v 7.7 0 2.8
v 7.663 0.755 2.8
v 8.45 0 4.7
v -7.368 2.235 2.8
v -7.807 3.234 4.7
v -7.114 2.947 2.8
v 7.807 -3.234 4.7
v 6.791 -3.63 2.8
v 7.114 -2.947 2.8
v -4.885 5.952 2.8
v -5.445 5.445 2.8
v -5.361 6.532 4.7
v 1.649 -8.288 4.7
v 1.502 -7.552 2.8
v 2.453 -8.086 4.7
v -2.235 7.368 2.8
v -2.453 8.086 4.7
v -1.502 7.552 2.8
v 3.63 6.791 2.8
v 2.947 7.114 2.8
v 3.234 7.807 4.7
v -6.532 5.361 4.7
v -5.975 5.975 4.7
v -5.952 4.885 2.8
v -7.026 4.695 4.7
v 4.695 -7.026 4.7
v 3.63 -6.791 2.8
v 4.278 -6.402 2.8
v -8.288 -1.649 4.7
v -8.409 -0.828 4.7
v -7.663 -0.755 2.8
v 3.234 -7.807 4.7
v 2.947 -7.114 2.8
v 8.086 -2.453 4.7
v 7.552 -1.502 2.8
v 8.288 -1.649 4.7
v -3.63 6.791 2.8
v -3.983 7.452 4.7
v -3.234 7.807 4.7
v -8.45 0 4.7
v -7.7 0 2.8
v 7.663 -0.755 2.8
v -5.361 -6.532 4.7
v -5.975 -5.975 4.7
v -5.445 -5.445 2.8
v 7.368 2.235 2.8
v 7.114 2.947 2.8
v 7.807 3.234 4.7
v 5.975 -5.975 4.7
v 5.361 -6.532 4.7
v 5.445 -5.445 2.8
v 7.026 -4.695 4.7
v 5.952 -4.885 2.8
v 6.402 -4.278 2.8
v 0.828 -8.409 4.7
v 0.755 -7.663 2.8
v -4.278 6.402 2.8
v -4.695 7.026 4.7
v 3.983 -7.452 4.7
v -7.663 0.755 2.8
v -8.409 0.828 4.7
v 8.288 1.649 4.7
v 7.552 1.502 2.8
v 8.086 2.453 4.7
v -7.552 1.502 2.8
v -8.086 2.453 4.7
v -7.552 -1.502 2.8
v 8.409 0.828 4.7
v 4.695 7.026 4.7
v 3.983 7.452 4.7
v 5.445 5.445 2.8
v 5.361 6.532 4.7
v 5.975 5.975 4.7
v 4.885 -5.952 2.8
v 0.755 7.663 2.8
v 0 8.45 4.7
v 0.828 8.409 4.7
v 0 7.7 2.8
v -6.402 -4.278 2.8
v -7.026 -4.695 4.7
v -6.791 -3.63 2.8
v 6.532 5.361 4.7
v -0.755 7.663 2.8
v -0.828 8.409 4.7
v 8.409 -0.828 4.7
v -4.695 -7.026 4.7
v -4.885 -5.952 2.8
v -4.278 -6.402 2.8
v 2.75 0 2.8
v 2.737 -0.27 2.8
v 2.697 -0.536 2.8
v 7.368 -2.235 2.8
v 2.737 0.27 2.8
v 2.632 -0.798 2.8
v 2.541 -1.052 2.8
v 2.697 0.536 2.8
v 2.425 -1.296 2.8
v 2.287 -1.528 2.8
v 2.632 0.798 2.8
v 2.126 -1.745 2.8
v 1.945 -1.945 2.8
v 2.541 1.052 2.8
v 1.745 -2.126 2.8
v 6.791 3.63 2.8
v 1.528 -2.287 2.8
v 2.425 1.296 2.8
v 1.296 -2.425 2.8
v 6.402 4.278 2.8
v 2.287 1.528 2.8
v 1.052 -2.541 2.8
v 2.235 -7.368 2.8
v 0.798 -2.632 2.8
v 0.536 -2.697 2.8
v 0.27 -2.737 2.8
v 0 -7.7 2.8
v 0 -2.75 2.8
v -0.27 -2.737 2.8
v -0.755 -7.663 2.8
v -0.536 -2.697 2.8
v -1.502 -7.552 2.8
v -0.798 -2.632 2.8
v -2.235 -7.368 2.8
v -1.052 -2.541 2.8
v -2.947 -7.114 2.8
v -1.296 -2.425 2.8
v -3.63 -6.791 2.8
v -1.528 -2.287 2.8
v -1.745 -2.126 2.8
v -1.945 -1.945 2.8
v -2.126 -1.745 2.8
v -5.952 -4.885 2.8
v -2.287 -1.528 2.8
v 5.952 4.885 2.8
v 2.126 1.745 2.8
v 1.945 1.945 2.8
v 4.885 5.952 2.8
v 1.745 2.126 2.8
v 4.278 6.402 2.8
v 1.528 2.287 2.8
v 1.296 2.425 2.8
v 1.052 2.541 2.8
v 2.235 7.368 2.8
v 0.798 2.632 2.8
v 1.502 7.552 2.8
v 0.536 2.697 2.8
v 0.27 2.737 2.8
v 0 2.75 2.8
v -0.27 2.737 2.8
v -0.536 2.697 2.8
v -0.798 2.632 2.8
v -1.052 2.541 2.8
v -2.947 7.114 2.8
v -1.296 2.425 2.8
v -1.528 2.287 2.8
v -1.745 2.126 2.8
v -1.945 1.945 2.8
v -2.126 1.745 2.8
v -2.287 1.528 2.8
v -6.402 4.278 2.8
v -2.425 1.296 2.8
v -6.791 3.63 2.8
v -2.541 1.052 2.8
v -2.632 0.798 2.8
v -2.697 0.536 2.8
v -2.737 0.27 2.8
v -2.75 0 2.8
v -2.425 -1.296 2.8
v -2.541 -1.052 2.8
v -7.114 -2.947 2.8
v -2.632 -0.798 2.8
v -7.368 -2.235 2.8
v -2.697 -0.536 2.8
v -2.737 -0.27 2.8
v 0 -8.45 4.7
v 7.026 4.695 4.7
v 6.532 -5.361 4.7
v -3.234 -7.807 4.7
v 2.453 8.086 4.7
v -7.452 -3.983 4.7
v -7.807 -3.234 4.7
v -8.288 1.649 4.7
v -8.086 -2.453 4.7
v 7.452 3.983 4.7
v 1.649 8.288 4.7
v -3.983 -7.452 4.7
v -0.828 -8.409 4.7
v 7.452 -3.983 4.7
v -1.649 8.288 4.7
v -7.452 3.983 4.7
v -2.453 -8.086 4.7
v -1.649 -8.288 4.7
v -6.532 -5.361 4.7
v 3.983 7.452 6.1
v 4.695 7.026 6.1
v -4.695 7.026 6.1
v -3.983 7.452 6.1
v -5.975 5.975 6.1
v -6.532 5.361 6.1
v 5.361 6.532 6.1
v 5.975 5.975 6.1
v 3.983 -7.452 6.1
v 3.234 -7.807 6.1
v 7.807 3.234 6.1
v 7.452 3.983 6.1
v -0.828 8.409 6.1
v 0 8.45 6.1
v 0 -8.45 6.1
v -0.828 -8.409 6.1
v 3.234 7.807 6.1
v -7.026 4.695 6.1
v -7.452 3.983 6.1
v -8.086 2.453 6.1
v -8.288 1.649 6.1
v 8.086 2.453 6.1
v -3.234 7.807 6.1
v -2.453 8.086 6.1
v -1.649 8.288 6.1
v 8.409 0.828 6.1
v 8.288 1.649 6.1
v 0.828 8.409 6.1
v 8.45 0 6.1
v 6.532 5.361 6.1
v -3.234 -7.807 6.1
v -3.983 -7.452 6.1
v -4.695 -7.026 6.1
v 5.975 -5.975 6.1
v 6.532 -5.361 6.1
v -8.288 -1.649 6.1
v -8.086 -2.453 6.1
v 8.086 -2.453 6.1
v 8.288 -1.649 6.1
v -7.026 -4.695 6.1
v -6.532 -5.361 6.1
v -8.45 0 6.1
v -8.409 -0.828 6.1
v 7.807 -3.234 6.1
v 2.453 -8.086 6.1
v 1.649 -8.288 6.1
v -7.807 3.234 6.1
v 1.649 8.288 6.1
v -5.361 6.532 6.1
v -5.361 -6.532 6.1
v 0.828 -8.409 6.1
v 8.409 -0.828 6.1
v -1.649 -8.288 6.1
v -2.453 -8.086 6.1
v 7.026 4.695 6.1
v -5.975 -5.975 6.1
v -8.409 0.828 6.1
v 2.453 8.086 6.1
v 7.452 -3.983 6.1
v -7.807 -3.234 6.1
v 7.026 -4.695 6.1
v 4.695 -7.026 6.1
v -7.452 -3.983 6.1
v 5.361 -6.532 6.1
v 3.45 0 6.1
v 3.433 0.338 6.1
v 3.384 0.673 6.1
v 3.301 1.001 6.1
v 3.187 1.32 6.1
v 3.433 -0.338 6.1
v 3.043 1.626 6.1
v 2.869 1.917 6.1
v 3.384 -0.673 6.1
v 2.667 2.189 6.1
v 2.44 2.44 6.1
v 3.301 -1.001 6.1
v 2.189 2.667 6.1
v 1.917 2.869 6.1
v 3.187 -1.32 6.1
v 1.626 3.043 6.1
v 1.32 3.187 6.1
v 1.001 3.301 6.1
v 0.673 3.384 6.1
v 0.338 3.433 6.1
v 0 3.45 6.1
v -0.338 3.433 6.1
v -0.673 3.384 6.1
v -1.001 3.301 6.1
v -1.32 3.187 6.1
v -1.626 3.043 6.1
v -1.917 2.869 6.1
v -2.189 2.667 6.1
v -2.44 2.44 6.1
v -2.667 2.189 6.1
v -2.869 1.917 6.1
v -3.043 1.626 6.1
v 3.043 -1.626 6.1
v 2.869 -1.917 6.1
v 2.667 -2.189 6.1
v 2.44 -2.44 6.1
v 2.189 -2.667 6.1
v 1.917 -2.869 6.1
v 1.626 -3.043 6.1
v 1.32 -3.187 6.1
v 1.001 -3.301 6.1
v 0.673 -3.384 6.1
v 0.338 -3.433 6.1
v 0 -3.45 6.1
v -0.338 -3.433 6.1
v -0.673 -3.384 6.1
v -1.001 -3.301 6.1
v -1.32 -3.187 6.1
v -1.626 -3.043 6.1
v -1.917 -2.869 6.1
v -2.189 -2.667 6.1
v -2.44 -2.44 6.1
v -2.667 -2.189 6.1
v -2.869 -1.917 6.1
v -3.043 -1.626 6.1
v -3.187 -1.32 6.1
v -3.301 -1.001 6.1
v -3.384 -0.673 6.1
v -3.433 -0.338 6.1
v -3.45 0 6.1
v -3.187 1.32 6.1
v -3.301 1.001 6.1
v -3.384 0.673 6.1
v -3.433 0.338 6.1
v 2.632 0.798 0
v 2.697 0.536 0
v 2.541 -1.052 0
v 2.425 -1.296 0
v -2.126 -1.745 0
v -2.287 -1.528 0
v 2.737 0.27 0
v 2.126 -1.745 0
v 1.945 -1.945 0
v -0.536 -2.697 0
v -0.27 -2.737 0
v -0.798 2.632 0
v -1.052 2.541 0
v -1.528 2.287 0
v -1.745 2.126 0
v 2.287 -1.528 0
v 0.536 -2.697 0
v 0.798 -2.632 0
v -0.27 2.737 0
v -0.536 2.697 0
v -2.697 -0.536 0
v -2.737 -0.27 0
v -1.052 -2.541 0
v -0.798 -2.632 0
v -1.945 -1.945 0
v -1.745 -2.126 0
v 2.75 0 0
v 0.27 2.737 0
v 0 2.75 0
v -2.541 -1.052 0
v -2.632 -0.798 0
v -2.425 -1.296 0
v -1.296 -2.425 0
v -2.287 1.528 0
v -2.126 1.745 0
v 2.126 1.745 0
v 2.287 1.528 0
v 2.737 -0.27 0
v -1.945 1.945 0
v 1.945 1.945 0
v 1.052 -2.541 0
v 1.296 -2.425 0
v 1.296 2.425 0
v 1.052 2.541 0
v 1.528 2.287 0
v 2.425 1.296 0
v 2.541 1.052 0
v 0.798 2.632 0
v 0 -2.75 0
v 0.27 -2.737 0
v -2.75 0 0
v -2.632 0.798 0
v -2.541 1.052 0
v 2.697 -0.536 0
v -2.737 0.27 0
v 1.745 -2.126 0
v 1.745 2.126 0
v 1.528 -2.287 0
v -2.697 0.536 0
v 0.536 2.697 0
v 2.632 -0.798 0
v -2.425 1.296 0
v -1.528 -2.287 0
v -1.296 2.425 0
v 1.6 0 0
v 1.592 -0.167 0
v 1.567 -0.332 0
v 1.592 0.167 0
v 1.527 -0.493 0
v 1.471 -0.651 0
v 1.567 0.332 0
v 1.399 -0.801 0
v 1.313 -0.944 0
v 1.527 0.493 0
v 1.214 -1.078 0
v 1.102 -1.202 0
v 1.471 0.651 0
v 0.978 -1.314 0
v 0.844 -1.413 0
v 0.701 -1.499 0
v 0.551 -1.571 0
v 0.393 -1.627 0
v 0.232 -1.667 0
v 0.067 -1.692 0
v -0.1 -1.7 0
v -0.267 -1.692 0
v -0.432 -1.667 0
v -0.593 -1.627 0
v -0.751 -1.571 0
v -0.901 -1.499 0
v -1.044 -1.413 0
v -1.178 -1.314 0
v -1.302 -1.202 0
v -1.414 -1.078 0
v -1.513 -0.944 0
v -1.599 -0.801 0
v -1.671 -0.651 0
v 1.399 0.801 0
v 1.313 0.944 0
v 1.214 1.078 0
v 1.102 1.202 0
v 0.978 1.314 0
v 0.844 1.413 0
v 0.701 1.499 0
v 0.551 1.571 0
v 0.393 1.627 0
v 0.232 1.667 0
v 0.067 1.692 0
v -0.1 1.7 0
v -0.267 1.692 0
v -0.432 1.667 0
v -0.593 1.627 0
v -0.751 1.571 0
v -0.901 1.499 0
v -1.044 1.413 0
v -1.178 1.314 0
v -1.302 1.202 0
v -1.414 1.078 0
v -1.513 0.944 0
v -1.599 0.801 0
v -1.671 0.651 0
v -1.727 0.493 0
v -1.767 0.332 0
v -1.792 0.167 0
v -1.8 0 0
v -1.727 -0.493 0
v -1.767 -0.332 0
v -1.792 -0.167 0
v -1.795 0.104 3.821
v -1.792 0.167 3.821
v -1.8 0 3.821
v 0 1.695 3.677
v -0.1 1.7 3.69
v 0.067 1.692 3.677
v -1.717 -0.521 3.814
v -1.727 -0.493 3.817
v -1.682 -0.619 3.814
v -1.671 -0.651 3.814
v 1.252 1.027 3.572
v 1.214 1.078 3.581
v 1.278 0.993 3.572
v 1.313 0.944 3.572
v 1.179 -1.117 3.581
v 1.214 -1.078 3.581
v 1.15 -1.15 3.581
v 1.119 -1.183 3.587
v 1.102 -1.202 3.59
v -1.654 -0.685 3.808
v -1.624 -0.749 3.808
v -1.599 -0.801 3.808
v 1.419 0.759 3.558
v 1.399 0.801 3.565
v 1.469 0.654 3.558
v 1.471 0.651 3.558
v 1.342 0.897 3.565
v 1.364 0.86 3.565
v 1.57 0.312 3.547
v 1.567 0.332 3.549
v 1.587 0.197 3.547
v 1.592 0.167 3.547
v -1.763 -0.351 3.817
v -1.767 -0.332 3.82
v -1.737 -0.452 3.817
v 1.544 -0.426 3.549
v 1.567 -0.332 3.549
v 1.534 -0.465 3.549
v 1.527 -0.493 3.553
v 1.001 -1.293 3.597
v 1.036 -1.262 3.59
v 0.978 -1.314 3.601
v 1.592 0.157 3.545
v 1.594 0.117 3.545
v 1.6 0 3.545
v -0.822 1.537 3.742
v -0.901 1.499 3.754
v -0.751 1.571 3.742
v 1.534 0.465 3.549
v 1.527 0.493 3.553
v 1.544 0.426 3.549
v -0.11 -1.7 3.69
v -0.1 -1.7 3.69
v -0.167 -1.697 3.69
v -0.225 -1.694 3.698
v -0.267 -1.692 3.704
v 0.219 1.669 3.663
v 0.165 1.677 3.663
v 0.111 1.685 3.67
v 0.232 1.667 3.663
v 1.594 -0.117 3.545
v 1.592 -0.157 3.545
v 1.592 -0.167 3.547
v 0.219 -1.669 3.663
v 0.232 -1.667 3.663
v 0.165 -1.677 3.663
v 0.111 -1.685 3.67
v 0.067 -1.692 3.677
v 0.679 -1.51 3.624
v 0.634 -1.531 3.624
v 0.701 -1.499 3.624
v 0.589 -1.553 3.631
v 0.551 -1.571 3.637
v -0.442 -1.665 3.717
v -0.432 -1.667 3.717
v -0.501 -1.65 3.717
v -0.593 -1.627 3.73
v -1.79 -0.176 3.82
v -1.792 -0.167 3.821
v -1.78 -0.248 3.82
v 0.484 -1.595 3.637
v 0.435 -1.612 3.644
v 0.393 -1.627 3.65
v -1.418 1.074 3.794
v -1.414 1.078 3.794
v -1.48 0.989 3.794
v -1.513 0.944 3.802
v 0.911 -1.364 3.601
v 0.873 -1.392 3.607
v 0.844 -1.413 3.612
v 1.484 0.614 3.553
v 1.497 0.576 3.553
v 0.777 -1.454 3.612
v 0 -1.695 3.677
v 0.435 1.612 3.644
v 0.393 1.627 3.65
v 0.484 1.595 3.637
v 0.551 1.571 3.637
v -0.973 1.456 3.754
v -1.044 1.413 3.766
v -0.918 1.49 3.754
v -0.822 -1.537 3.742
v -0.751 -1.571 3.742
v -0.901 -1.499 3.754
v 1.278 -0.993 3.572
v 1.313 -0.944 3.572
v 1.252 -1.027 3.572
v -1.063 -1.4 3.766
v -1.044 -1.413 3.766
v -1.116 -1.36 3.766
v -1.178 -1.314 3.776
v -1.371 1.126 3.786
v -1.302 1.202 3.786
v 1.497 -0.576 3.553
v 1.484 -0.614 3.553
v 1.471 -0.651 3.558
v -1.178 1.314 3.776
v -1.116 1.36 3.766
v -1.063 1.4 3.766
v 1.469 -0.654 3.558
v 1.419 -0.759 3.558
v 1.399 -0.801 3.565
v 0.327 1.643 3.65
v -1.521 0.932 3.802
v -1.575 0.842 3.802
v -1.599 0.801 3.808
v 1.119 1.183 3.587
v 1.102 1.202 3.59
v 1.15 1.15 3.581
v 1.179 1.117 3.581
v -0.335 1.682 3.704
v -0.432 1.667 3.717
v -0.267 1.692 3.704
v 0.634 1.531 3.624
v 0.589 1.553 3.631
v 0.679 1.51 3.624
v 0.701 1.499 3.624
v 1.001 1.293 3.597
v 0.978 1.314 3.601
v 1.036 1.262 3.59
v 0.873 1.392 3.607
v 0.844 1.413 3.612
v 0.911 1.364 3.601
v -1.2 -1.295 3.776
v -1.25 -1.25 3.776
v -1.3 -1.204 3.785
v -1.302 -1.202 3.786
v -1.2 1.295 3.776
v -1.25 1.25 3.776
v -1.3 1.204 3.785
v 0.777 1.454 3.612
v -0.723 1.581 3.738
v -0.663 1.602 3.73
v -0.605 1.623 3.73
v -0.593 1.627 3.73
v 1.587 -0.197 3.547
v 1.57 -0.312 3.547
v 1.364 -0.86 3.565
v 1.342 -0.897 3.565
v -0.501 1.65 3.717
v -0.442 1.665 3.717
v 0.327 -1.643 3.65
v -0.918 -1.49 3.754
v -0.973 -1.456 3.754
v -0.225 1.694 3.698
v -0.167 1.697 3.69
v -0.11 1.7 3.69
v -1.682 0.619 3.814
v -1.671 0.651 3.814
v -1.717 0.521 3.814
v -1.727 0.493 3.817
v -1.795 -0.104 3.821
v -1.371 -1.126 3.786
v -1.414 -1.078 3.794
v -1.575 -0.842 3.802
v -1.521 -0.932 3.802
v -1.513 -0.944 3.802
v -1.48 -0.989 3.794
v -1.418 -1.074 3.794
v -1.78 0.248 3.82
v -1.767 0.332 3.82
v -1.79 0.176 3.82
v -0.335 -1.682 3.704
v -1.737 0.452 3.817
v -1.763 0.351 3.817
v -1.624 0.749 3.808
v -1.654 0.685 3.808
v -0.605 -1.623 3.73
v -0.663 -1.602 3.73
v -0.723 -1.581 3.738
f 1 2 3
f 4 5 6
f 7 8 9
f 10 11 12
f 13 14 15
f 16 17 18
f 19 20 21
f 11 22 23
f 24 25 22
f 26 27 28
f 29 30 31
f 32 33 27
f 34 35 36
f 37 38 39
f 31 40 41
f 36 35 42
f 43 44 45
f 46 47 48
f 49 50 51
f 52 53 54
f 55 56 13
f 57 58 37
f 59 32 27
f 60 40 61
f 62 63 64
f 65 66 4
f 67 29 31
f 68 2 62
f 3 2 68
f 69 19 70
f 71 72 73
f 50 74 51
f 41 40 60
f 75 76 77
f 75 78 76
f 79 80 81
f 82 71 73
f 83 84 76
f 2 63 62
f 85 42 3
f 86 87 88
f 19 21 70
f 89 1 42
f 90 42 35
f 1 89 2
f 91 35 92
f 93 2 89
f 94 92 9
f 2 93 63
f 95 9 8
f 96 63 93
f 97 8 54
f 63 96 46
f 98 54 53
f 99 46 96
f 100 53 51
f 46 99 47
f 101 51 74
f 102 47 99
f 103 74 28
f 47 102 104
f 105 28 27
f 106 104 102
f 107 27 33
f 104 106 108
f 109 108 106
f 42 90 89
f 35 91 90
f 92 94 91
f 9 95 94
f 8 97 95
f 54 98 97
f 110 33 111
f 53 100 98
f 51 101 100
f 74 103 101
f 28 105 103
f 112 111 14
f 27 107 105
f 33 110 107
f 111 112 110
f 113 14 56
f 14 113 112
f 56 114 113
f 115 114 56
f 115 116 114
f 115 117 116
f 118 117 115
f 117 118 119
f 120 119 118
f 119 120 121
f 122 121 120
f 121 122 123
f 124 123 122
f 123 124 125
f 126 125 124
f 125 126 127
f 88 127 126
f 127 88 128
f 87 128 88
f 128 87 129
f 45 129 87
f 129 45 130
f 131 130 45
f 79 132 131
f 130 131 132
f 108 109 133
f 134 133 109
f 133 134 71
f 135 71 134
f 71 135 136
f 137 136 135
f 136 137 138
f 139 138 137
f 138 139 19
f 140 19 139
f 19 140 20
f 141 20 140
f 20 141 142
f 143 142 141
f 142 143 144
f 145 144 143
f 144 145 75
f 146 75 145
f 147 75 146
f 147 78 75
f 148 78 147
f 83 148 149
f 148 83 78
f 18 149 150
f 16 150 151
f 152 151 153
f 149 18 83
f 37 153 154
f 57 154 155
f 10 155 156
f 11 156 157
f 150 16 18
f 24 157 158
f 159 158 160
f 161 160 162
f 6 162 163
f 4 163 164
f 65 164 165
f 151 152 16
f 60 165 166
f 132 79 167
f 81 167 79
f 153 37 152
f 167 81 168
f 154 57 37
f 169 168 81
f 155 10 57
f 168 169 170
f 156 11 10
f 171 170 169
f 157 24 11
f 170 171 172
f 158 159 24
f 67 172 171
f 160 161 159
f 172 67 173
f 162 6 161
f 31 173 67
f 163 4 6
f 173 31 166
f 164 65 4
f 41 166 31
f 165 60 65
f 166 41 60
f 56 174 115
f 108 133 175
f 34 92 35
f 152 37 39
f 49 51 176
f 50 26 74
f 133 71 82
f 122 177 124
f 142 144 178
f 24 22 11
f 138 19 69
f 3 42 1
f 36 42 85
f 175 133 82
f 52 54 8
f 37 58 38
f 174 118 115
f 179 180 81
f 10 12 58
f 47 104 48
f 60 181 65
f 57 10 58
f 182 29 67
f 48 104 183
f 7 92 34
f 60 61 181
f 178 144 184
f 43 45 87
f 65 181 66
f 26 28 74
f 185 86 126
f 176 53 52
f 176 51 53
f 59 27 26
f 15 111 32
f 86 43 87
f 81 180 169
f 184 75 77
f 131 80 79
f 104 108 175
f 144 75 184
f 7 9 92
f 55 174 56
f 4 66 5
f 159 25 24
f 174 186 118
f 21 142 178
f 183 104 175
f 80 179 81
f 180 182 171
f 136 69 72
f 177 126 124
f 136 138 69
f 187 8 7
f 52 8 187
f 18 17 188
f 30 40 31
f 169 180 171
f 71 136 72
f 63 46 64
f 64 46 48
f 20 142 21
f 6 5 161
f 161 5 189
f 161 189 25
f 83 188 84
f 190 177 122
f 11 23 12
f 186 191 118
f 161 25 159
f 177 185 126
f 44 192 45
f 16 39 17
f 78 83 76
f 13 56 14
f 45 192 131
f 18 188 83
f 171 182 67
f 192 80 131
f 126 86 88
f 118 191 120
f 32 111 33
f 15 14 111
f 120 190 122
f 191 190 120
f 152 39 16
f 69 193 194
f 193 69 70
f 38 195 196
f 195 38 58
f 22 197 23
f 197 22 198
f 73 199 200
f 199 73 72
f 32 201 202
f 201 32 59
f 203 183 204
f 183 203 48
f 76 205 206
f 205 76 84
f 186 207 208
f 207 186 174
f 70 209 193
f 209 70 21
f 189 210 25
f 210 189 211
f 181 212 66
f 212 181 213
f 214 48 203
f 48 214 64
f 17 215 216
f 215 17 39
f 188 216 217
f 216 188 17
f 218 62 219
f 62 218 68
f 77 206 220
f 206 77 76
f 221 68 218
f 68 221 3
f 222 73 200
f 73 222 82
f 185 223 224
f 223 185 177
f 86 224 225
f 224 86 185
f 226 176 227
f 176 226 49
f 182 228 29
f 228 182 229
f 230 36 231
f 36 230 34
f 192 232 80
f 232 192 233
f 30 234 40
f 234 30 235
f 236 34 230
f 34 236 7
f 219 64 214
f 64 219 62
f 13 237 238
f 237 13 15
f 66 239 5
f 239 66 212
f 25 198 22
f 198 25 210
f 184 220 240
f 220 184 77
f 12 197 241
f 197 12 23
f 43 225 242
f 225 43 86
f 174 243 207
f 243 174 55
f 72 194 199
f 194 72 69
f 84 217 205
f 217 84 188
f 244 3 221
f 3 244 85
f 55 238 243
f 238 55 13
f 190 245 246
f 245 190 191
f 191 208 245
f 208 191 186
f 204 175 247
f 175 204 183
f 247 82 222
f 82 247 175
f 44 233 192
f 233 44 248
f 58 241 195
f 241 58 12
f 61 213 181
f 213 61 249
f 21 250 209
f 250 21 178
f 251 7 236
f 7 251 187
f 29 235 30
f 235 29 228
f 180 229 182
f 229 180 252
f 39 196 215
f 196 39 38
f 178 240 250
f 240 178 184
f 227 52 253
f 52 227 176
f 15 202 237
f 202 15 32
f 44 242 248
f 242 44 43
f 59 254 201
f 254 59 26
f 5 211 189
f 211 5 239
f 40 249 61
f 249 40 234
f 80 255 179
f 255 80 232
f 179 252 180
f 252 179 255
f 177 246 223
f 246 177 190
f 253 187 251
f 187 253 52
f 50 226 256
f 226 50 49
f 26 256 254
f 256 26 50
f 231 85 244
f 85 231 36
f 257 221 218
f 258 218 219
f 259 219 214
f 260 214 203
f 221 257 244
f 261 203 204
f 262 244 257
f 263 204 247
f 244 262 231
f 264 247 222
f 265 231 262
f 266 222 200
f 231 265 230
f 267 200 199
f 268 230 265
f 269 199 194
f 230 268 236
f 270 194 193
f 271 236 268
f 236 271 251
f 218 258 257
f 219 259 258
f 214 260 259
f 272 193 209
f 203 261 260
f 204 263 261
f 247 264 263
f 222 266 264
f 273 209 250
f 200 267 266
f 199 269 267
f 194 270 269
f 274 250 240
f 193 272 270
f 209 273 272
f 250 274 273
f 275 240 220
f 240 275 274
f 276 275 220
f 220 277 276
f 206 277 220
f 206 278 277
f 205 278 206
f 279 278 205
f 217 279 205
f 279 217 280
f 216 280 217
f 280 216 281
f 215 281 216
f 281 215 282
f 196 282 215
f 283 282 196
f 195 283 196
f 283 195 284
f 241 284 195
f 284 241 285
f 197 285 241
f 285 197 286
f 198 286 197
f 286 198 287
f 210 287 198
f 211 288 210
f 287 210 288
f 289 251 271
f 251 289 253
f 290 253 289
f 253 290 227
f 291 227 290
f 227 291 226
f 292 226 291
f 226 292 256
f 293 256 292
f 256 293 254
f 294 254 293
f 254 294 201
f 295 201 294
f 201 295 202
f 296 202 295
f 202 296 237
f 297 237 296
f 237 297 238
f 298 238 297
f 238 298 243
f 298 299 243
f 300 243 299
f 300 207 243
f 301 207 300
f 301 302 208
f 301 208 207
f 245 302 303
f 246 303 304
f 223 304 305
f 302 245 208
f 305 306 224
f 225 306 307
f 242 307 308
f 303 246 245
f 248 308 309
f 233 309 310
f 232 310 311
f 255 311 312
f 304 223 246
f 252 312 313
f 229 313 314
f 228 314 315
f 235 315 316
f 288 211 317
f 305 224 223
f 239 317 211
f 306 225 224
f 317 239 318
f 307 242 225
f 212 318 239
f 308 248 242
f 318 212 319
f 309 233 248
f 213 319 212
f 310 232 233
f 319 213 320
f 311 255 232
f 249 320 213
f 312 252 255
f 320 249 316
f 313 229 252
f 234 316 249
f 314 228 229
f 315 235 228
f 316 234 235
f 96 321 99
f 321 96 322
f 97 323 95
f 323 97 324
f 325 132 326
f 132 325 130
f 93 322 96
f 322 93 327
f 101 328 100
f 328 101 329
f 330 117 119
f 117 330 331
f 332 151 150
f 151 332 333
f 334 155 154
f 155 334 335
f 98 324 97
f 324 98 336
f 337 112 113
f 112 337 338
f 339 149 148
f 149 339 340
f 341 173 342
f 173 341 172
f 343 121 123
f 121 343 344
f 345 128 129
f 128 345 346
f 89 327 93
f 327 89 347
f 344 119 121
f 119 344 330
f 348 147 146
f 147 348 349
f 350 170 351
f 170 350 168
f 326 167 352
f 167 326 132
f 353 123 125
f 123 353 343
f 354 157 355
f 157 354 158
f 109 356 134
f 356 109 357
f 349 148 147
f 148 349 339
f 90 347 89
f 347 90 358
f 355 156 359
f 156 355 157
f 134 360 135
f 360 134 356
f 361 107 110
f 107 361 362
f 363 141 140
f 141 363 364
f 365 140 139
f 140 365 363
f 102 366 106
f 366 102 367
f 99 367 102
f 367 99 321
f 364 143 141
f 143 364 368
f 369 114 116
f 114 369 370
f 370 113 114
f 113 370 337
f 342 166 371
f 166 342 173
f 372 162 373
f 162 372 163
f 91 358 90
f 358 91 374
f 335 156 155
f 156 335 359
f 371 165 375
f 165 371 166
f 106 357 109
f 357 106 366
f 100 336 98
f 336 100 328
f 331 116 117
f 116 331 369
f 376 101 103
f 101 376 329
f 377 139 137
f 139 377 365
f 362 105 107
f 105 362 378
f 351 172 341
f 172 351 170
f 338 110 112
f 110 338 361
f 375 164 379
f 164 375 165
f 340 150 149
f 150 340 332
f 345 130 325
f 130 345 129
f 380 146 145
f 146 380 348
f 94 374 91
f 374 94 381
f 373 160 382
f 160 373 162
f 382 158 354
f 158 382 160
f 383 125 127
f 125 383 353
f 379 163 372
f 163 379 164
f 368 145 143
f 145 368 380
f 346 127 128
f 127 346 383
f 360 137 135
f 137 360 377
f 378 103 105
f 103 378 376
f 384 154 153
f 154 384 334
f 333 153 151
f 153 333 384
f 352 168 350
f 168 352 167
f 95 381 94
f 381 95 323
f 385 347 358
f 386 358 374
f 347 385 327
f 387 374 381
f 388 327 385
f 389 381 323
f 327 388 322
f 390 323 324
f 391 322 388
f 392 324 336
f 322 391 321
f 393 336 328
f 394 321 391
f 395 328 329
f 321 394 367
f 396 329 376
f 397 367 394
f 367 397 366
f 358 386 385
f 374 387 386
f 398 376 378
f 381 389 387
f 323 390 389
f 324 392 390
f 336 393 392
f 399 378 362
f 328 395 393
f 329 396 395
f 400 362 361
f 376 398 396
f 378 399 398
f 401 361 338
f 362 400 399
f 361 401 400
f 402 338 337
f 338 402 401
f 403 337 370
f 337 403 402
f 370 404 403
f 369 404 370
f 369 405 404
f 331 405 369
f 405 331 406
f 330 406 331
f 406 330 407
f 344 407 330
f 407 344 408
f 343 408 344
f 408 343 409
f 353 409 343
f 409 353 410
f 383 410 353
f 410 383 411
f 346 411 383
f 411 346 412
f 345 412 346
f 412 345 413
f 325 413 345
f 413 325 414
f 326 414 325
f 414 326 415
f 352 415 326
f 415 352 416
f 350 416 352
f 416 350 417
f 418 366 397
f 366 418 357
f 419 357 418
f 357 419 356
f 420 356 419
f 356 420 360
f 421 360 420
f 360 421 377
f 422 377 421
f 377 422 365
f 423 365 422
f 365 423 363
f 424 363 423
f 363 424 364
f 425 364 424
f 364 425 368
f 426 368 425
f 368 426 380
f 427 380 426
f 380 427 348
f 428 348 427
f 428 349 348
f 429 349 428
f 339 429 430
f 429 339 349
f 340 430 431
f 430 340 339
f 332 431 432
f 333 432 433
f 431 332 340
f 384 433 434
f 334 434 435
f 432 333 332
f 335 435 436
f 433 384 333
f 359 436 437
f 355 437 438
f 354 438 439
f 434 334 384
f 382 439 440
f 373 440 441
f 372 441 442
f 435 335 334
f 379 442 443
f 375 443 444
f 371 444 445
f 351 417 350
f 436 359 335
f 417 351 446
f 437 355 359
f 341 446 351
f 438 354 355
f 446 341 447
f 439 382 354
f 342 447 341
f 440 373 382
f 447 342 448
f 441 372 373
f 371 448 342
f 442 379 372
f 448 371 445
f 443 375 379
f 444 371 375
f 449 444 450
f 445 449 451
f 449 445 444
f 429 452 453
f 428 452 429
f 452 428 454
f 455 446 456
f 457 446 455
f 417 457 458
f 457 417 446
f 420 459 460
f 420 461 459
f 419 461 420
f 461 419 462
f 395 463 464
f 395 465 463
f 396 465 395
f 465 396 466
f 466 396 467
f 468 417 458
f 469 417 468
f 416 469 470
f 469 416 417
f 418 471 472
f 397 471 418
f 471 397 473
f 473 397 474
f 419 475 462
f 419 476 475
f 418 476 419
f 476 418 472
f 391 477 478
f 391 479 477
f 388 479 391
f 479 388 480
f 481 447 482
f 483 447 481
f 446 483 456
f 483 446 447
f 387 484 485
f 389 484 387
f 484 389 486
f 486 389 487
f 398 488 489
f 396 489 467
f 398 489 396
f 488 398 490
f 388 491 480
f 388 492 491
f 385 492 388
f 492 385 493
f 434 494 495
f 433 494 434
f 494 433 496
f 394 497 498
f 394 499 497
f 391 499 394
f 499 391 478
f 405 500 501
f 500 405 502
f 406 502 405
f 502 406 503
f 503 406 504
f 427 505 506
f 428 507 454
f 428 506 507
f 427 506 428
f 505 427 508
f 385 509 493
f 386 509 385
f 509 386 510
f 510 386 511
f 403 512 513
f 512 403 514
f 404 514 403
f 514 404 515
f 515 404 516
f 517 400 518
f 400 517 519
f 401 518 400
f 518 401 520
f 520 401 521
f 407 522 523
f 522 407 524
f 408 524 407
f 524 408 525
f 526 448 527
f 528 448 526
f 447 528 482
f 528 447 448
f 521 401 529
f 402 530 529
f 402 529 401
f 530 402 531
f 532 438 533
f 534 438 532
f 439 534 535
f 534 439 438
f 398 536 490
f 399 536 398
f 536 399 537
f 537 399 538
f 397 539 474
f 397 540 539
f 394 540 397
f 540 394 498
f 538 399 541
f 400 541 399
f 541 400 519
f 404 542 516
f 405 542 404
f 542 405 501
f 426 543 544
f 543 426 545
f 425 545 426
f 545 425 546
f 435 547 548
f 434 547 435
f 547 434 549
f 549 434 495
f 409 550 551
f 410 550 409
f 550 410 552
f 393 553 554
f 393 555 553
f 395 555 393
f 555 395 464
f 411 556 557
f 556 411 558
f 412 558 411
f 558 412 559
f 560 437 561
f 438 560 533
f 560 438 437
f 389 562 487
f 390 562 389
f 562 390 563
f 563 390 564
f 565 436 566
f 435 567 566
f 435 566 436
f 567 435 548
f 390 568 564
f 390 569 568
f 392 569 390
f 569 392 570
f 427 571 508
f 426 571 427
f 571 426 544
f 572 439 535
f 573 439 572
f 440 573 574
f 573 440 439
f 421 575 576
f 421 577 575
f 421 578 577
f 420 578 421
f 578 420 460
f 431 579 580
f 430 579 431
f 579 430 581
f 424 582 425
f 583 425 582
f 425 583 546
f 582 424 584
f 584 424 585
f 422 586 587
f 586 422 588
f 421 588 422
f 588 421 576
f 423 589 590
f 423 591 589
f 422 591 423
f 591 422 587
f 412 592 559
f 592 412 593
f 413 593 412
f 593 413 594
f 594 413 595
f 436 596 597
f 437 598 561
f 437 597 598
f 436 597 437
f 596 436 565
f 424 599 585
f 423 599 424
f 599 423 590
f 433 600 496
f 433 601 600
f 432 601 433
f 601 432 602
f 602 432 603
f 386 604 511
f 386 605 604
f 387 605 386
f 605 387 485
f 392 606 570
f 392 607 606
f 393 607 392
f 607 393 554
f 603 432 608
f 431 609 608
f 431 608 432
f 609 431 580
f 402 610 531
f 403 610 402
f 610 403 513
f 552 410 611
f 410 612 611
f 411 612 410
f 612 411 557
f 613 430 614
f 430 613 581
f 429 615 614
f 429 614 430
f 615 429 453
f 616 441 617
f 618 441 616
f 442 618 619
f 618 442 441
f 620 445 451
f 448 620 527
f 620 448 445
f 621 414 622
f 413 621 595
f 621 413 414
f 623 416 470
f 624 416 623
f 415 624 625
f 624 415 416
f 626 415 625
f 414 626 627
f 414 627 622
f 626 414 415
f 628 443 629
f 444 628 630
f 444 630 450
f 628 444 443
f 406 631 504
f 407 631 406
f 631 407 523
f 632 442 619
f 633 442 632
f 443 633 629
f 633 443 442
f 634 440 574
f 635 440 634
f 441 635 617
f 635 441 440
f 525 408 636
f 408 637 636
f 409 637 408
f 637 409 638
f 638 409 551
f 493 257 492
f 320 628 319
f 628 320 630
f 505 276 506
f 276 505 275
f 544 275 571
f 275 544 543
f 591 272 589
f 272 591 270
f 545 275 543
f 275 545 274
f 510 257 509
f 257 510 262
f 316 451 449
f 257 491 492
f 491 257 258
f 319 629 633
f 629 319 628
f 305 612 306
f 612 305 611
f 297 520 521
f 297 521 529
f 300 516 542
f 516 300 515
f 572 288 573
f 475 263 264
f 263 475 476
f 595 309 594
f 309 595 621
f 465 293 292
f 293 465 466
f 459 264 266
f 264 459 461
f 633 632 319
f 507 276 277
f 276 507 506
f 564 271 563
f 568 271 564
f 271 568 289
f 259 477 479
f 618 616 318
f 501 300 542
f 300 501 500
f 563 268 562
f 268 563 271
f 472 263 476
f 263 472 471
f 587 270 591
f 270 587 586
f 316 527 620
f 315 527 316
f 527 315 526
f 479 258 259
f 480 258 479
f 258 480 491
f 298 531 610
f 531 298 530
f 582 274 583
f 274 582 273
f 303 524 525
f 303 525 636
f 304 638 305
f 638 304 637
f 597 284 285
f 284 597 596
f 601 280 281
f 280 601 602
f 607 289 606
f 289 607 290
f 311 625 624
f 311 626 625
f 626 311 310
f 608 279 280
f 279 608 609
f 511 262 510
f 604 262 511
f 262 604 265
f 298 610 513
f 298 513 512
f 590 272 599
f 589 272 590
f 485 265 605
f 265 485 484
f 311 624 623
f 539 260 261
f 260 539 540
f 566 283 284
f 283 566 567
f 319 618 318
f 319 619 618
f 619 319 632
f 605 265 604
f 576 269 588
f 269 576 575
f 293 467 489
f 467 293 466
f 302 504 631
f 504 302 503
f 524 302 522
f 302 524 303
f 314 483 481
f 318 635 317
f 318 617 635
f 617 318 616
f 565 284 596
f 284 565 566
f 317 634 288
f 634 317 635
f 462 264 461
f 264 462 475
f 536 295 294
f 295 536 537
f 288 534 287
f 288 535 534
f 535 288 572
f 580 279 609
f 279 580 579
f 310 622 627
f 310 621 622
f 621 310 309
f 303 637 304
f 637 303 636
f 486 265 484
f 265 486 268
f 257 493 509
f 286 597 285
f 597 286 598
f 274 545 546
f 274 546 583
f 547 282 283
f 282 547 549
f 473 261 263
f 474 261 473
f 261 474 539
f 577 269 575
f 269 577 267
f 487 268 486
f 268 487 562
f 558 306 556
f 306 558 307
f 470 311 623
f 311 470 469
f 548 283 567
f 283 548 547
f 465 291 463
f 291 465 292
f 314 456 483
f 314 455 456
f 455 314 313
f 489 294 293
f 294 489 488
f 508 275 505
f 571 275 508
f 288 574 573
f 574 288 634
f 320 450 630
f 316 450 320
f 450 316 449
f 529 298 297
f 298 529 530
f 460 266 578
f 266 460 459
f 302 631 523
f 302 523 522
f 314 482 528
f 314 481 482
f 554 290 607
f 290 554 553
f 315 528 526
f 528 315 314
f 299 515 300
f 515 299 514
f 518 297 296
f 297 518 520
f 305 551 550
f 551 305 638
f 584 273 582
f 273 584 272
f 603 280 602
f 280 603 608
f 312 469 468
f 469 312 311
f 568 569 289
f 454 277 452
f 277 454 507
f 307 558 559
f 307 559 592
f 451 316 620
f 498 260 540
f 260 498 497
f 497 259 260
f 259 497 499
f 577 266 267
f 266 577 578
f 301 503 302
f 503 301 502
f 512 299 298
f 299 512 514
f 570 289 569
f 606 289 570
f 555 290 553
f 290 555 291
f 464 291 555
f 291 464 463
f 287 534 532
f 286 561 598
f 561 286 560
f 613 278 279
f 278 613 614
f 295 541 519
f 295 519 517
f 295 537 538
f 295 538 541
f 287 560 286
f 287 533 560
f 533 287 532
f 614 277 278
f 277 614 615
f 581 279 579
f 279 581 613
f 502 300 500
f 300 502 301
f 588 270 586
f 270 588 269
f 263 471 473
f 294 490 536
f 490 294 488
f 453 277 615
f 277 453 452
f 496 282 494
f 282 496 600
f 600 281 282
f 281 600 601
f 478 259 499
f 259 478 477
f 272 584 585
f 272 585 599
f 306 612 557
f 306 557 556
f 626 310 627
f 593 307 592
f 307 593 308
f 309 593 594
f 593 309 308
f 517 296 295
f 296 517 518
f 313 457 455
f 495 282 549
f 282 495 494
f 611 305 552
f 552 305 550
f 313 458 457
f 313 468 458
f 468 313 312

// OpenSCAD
thickness_peg = 2.8;
thickness_large = 3.3;
thickness_flat = 1.4;

width_peg = 5.5;
width_peghole = 3.4;
width_slant = 15.4;
width_total = 16.9;

with_countersink = 1;

screw_head_height = 2.9;
screw_head_top_r = 6.9;
screw_head_bottom_r = 2.7;

// No changes after this
$fn = 64;
total_thickness = thickness_peg + thickness_large;

module lock () {
difference() {
    union() {
        cylinder(h = total_thickness, d = width_peg);
        translate([0, 0, thickness_peg]) union() {
            cylinder(h = thickness_large - thickness_flat, d1 = width_slant, d2 = width_total);
            translate([0, 0, thickness_large - thickness_flat]) cylinder(h = thickness_flat, d = width_total);
        }
    }
    translate([-0.1, 0, 0]) cylinder(h = total_thickness * 2, d = width_peghole);
}
}
if (with_countersink) {
    difference() {
        lock();
        translate([0, 0, total_thickness - screw_head_height]) cylinder(h = screw_head_height, d2 = screw_head_top_r, d1 = screw_head_bottom_r);
    }
} else {
    lock();
}
